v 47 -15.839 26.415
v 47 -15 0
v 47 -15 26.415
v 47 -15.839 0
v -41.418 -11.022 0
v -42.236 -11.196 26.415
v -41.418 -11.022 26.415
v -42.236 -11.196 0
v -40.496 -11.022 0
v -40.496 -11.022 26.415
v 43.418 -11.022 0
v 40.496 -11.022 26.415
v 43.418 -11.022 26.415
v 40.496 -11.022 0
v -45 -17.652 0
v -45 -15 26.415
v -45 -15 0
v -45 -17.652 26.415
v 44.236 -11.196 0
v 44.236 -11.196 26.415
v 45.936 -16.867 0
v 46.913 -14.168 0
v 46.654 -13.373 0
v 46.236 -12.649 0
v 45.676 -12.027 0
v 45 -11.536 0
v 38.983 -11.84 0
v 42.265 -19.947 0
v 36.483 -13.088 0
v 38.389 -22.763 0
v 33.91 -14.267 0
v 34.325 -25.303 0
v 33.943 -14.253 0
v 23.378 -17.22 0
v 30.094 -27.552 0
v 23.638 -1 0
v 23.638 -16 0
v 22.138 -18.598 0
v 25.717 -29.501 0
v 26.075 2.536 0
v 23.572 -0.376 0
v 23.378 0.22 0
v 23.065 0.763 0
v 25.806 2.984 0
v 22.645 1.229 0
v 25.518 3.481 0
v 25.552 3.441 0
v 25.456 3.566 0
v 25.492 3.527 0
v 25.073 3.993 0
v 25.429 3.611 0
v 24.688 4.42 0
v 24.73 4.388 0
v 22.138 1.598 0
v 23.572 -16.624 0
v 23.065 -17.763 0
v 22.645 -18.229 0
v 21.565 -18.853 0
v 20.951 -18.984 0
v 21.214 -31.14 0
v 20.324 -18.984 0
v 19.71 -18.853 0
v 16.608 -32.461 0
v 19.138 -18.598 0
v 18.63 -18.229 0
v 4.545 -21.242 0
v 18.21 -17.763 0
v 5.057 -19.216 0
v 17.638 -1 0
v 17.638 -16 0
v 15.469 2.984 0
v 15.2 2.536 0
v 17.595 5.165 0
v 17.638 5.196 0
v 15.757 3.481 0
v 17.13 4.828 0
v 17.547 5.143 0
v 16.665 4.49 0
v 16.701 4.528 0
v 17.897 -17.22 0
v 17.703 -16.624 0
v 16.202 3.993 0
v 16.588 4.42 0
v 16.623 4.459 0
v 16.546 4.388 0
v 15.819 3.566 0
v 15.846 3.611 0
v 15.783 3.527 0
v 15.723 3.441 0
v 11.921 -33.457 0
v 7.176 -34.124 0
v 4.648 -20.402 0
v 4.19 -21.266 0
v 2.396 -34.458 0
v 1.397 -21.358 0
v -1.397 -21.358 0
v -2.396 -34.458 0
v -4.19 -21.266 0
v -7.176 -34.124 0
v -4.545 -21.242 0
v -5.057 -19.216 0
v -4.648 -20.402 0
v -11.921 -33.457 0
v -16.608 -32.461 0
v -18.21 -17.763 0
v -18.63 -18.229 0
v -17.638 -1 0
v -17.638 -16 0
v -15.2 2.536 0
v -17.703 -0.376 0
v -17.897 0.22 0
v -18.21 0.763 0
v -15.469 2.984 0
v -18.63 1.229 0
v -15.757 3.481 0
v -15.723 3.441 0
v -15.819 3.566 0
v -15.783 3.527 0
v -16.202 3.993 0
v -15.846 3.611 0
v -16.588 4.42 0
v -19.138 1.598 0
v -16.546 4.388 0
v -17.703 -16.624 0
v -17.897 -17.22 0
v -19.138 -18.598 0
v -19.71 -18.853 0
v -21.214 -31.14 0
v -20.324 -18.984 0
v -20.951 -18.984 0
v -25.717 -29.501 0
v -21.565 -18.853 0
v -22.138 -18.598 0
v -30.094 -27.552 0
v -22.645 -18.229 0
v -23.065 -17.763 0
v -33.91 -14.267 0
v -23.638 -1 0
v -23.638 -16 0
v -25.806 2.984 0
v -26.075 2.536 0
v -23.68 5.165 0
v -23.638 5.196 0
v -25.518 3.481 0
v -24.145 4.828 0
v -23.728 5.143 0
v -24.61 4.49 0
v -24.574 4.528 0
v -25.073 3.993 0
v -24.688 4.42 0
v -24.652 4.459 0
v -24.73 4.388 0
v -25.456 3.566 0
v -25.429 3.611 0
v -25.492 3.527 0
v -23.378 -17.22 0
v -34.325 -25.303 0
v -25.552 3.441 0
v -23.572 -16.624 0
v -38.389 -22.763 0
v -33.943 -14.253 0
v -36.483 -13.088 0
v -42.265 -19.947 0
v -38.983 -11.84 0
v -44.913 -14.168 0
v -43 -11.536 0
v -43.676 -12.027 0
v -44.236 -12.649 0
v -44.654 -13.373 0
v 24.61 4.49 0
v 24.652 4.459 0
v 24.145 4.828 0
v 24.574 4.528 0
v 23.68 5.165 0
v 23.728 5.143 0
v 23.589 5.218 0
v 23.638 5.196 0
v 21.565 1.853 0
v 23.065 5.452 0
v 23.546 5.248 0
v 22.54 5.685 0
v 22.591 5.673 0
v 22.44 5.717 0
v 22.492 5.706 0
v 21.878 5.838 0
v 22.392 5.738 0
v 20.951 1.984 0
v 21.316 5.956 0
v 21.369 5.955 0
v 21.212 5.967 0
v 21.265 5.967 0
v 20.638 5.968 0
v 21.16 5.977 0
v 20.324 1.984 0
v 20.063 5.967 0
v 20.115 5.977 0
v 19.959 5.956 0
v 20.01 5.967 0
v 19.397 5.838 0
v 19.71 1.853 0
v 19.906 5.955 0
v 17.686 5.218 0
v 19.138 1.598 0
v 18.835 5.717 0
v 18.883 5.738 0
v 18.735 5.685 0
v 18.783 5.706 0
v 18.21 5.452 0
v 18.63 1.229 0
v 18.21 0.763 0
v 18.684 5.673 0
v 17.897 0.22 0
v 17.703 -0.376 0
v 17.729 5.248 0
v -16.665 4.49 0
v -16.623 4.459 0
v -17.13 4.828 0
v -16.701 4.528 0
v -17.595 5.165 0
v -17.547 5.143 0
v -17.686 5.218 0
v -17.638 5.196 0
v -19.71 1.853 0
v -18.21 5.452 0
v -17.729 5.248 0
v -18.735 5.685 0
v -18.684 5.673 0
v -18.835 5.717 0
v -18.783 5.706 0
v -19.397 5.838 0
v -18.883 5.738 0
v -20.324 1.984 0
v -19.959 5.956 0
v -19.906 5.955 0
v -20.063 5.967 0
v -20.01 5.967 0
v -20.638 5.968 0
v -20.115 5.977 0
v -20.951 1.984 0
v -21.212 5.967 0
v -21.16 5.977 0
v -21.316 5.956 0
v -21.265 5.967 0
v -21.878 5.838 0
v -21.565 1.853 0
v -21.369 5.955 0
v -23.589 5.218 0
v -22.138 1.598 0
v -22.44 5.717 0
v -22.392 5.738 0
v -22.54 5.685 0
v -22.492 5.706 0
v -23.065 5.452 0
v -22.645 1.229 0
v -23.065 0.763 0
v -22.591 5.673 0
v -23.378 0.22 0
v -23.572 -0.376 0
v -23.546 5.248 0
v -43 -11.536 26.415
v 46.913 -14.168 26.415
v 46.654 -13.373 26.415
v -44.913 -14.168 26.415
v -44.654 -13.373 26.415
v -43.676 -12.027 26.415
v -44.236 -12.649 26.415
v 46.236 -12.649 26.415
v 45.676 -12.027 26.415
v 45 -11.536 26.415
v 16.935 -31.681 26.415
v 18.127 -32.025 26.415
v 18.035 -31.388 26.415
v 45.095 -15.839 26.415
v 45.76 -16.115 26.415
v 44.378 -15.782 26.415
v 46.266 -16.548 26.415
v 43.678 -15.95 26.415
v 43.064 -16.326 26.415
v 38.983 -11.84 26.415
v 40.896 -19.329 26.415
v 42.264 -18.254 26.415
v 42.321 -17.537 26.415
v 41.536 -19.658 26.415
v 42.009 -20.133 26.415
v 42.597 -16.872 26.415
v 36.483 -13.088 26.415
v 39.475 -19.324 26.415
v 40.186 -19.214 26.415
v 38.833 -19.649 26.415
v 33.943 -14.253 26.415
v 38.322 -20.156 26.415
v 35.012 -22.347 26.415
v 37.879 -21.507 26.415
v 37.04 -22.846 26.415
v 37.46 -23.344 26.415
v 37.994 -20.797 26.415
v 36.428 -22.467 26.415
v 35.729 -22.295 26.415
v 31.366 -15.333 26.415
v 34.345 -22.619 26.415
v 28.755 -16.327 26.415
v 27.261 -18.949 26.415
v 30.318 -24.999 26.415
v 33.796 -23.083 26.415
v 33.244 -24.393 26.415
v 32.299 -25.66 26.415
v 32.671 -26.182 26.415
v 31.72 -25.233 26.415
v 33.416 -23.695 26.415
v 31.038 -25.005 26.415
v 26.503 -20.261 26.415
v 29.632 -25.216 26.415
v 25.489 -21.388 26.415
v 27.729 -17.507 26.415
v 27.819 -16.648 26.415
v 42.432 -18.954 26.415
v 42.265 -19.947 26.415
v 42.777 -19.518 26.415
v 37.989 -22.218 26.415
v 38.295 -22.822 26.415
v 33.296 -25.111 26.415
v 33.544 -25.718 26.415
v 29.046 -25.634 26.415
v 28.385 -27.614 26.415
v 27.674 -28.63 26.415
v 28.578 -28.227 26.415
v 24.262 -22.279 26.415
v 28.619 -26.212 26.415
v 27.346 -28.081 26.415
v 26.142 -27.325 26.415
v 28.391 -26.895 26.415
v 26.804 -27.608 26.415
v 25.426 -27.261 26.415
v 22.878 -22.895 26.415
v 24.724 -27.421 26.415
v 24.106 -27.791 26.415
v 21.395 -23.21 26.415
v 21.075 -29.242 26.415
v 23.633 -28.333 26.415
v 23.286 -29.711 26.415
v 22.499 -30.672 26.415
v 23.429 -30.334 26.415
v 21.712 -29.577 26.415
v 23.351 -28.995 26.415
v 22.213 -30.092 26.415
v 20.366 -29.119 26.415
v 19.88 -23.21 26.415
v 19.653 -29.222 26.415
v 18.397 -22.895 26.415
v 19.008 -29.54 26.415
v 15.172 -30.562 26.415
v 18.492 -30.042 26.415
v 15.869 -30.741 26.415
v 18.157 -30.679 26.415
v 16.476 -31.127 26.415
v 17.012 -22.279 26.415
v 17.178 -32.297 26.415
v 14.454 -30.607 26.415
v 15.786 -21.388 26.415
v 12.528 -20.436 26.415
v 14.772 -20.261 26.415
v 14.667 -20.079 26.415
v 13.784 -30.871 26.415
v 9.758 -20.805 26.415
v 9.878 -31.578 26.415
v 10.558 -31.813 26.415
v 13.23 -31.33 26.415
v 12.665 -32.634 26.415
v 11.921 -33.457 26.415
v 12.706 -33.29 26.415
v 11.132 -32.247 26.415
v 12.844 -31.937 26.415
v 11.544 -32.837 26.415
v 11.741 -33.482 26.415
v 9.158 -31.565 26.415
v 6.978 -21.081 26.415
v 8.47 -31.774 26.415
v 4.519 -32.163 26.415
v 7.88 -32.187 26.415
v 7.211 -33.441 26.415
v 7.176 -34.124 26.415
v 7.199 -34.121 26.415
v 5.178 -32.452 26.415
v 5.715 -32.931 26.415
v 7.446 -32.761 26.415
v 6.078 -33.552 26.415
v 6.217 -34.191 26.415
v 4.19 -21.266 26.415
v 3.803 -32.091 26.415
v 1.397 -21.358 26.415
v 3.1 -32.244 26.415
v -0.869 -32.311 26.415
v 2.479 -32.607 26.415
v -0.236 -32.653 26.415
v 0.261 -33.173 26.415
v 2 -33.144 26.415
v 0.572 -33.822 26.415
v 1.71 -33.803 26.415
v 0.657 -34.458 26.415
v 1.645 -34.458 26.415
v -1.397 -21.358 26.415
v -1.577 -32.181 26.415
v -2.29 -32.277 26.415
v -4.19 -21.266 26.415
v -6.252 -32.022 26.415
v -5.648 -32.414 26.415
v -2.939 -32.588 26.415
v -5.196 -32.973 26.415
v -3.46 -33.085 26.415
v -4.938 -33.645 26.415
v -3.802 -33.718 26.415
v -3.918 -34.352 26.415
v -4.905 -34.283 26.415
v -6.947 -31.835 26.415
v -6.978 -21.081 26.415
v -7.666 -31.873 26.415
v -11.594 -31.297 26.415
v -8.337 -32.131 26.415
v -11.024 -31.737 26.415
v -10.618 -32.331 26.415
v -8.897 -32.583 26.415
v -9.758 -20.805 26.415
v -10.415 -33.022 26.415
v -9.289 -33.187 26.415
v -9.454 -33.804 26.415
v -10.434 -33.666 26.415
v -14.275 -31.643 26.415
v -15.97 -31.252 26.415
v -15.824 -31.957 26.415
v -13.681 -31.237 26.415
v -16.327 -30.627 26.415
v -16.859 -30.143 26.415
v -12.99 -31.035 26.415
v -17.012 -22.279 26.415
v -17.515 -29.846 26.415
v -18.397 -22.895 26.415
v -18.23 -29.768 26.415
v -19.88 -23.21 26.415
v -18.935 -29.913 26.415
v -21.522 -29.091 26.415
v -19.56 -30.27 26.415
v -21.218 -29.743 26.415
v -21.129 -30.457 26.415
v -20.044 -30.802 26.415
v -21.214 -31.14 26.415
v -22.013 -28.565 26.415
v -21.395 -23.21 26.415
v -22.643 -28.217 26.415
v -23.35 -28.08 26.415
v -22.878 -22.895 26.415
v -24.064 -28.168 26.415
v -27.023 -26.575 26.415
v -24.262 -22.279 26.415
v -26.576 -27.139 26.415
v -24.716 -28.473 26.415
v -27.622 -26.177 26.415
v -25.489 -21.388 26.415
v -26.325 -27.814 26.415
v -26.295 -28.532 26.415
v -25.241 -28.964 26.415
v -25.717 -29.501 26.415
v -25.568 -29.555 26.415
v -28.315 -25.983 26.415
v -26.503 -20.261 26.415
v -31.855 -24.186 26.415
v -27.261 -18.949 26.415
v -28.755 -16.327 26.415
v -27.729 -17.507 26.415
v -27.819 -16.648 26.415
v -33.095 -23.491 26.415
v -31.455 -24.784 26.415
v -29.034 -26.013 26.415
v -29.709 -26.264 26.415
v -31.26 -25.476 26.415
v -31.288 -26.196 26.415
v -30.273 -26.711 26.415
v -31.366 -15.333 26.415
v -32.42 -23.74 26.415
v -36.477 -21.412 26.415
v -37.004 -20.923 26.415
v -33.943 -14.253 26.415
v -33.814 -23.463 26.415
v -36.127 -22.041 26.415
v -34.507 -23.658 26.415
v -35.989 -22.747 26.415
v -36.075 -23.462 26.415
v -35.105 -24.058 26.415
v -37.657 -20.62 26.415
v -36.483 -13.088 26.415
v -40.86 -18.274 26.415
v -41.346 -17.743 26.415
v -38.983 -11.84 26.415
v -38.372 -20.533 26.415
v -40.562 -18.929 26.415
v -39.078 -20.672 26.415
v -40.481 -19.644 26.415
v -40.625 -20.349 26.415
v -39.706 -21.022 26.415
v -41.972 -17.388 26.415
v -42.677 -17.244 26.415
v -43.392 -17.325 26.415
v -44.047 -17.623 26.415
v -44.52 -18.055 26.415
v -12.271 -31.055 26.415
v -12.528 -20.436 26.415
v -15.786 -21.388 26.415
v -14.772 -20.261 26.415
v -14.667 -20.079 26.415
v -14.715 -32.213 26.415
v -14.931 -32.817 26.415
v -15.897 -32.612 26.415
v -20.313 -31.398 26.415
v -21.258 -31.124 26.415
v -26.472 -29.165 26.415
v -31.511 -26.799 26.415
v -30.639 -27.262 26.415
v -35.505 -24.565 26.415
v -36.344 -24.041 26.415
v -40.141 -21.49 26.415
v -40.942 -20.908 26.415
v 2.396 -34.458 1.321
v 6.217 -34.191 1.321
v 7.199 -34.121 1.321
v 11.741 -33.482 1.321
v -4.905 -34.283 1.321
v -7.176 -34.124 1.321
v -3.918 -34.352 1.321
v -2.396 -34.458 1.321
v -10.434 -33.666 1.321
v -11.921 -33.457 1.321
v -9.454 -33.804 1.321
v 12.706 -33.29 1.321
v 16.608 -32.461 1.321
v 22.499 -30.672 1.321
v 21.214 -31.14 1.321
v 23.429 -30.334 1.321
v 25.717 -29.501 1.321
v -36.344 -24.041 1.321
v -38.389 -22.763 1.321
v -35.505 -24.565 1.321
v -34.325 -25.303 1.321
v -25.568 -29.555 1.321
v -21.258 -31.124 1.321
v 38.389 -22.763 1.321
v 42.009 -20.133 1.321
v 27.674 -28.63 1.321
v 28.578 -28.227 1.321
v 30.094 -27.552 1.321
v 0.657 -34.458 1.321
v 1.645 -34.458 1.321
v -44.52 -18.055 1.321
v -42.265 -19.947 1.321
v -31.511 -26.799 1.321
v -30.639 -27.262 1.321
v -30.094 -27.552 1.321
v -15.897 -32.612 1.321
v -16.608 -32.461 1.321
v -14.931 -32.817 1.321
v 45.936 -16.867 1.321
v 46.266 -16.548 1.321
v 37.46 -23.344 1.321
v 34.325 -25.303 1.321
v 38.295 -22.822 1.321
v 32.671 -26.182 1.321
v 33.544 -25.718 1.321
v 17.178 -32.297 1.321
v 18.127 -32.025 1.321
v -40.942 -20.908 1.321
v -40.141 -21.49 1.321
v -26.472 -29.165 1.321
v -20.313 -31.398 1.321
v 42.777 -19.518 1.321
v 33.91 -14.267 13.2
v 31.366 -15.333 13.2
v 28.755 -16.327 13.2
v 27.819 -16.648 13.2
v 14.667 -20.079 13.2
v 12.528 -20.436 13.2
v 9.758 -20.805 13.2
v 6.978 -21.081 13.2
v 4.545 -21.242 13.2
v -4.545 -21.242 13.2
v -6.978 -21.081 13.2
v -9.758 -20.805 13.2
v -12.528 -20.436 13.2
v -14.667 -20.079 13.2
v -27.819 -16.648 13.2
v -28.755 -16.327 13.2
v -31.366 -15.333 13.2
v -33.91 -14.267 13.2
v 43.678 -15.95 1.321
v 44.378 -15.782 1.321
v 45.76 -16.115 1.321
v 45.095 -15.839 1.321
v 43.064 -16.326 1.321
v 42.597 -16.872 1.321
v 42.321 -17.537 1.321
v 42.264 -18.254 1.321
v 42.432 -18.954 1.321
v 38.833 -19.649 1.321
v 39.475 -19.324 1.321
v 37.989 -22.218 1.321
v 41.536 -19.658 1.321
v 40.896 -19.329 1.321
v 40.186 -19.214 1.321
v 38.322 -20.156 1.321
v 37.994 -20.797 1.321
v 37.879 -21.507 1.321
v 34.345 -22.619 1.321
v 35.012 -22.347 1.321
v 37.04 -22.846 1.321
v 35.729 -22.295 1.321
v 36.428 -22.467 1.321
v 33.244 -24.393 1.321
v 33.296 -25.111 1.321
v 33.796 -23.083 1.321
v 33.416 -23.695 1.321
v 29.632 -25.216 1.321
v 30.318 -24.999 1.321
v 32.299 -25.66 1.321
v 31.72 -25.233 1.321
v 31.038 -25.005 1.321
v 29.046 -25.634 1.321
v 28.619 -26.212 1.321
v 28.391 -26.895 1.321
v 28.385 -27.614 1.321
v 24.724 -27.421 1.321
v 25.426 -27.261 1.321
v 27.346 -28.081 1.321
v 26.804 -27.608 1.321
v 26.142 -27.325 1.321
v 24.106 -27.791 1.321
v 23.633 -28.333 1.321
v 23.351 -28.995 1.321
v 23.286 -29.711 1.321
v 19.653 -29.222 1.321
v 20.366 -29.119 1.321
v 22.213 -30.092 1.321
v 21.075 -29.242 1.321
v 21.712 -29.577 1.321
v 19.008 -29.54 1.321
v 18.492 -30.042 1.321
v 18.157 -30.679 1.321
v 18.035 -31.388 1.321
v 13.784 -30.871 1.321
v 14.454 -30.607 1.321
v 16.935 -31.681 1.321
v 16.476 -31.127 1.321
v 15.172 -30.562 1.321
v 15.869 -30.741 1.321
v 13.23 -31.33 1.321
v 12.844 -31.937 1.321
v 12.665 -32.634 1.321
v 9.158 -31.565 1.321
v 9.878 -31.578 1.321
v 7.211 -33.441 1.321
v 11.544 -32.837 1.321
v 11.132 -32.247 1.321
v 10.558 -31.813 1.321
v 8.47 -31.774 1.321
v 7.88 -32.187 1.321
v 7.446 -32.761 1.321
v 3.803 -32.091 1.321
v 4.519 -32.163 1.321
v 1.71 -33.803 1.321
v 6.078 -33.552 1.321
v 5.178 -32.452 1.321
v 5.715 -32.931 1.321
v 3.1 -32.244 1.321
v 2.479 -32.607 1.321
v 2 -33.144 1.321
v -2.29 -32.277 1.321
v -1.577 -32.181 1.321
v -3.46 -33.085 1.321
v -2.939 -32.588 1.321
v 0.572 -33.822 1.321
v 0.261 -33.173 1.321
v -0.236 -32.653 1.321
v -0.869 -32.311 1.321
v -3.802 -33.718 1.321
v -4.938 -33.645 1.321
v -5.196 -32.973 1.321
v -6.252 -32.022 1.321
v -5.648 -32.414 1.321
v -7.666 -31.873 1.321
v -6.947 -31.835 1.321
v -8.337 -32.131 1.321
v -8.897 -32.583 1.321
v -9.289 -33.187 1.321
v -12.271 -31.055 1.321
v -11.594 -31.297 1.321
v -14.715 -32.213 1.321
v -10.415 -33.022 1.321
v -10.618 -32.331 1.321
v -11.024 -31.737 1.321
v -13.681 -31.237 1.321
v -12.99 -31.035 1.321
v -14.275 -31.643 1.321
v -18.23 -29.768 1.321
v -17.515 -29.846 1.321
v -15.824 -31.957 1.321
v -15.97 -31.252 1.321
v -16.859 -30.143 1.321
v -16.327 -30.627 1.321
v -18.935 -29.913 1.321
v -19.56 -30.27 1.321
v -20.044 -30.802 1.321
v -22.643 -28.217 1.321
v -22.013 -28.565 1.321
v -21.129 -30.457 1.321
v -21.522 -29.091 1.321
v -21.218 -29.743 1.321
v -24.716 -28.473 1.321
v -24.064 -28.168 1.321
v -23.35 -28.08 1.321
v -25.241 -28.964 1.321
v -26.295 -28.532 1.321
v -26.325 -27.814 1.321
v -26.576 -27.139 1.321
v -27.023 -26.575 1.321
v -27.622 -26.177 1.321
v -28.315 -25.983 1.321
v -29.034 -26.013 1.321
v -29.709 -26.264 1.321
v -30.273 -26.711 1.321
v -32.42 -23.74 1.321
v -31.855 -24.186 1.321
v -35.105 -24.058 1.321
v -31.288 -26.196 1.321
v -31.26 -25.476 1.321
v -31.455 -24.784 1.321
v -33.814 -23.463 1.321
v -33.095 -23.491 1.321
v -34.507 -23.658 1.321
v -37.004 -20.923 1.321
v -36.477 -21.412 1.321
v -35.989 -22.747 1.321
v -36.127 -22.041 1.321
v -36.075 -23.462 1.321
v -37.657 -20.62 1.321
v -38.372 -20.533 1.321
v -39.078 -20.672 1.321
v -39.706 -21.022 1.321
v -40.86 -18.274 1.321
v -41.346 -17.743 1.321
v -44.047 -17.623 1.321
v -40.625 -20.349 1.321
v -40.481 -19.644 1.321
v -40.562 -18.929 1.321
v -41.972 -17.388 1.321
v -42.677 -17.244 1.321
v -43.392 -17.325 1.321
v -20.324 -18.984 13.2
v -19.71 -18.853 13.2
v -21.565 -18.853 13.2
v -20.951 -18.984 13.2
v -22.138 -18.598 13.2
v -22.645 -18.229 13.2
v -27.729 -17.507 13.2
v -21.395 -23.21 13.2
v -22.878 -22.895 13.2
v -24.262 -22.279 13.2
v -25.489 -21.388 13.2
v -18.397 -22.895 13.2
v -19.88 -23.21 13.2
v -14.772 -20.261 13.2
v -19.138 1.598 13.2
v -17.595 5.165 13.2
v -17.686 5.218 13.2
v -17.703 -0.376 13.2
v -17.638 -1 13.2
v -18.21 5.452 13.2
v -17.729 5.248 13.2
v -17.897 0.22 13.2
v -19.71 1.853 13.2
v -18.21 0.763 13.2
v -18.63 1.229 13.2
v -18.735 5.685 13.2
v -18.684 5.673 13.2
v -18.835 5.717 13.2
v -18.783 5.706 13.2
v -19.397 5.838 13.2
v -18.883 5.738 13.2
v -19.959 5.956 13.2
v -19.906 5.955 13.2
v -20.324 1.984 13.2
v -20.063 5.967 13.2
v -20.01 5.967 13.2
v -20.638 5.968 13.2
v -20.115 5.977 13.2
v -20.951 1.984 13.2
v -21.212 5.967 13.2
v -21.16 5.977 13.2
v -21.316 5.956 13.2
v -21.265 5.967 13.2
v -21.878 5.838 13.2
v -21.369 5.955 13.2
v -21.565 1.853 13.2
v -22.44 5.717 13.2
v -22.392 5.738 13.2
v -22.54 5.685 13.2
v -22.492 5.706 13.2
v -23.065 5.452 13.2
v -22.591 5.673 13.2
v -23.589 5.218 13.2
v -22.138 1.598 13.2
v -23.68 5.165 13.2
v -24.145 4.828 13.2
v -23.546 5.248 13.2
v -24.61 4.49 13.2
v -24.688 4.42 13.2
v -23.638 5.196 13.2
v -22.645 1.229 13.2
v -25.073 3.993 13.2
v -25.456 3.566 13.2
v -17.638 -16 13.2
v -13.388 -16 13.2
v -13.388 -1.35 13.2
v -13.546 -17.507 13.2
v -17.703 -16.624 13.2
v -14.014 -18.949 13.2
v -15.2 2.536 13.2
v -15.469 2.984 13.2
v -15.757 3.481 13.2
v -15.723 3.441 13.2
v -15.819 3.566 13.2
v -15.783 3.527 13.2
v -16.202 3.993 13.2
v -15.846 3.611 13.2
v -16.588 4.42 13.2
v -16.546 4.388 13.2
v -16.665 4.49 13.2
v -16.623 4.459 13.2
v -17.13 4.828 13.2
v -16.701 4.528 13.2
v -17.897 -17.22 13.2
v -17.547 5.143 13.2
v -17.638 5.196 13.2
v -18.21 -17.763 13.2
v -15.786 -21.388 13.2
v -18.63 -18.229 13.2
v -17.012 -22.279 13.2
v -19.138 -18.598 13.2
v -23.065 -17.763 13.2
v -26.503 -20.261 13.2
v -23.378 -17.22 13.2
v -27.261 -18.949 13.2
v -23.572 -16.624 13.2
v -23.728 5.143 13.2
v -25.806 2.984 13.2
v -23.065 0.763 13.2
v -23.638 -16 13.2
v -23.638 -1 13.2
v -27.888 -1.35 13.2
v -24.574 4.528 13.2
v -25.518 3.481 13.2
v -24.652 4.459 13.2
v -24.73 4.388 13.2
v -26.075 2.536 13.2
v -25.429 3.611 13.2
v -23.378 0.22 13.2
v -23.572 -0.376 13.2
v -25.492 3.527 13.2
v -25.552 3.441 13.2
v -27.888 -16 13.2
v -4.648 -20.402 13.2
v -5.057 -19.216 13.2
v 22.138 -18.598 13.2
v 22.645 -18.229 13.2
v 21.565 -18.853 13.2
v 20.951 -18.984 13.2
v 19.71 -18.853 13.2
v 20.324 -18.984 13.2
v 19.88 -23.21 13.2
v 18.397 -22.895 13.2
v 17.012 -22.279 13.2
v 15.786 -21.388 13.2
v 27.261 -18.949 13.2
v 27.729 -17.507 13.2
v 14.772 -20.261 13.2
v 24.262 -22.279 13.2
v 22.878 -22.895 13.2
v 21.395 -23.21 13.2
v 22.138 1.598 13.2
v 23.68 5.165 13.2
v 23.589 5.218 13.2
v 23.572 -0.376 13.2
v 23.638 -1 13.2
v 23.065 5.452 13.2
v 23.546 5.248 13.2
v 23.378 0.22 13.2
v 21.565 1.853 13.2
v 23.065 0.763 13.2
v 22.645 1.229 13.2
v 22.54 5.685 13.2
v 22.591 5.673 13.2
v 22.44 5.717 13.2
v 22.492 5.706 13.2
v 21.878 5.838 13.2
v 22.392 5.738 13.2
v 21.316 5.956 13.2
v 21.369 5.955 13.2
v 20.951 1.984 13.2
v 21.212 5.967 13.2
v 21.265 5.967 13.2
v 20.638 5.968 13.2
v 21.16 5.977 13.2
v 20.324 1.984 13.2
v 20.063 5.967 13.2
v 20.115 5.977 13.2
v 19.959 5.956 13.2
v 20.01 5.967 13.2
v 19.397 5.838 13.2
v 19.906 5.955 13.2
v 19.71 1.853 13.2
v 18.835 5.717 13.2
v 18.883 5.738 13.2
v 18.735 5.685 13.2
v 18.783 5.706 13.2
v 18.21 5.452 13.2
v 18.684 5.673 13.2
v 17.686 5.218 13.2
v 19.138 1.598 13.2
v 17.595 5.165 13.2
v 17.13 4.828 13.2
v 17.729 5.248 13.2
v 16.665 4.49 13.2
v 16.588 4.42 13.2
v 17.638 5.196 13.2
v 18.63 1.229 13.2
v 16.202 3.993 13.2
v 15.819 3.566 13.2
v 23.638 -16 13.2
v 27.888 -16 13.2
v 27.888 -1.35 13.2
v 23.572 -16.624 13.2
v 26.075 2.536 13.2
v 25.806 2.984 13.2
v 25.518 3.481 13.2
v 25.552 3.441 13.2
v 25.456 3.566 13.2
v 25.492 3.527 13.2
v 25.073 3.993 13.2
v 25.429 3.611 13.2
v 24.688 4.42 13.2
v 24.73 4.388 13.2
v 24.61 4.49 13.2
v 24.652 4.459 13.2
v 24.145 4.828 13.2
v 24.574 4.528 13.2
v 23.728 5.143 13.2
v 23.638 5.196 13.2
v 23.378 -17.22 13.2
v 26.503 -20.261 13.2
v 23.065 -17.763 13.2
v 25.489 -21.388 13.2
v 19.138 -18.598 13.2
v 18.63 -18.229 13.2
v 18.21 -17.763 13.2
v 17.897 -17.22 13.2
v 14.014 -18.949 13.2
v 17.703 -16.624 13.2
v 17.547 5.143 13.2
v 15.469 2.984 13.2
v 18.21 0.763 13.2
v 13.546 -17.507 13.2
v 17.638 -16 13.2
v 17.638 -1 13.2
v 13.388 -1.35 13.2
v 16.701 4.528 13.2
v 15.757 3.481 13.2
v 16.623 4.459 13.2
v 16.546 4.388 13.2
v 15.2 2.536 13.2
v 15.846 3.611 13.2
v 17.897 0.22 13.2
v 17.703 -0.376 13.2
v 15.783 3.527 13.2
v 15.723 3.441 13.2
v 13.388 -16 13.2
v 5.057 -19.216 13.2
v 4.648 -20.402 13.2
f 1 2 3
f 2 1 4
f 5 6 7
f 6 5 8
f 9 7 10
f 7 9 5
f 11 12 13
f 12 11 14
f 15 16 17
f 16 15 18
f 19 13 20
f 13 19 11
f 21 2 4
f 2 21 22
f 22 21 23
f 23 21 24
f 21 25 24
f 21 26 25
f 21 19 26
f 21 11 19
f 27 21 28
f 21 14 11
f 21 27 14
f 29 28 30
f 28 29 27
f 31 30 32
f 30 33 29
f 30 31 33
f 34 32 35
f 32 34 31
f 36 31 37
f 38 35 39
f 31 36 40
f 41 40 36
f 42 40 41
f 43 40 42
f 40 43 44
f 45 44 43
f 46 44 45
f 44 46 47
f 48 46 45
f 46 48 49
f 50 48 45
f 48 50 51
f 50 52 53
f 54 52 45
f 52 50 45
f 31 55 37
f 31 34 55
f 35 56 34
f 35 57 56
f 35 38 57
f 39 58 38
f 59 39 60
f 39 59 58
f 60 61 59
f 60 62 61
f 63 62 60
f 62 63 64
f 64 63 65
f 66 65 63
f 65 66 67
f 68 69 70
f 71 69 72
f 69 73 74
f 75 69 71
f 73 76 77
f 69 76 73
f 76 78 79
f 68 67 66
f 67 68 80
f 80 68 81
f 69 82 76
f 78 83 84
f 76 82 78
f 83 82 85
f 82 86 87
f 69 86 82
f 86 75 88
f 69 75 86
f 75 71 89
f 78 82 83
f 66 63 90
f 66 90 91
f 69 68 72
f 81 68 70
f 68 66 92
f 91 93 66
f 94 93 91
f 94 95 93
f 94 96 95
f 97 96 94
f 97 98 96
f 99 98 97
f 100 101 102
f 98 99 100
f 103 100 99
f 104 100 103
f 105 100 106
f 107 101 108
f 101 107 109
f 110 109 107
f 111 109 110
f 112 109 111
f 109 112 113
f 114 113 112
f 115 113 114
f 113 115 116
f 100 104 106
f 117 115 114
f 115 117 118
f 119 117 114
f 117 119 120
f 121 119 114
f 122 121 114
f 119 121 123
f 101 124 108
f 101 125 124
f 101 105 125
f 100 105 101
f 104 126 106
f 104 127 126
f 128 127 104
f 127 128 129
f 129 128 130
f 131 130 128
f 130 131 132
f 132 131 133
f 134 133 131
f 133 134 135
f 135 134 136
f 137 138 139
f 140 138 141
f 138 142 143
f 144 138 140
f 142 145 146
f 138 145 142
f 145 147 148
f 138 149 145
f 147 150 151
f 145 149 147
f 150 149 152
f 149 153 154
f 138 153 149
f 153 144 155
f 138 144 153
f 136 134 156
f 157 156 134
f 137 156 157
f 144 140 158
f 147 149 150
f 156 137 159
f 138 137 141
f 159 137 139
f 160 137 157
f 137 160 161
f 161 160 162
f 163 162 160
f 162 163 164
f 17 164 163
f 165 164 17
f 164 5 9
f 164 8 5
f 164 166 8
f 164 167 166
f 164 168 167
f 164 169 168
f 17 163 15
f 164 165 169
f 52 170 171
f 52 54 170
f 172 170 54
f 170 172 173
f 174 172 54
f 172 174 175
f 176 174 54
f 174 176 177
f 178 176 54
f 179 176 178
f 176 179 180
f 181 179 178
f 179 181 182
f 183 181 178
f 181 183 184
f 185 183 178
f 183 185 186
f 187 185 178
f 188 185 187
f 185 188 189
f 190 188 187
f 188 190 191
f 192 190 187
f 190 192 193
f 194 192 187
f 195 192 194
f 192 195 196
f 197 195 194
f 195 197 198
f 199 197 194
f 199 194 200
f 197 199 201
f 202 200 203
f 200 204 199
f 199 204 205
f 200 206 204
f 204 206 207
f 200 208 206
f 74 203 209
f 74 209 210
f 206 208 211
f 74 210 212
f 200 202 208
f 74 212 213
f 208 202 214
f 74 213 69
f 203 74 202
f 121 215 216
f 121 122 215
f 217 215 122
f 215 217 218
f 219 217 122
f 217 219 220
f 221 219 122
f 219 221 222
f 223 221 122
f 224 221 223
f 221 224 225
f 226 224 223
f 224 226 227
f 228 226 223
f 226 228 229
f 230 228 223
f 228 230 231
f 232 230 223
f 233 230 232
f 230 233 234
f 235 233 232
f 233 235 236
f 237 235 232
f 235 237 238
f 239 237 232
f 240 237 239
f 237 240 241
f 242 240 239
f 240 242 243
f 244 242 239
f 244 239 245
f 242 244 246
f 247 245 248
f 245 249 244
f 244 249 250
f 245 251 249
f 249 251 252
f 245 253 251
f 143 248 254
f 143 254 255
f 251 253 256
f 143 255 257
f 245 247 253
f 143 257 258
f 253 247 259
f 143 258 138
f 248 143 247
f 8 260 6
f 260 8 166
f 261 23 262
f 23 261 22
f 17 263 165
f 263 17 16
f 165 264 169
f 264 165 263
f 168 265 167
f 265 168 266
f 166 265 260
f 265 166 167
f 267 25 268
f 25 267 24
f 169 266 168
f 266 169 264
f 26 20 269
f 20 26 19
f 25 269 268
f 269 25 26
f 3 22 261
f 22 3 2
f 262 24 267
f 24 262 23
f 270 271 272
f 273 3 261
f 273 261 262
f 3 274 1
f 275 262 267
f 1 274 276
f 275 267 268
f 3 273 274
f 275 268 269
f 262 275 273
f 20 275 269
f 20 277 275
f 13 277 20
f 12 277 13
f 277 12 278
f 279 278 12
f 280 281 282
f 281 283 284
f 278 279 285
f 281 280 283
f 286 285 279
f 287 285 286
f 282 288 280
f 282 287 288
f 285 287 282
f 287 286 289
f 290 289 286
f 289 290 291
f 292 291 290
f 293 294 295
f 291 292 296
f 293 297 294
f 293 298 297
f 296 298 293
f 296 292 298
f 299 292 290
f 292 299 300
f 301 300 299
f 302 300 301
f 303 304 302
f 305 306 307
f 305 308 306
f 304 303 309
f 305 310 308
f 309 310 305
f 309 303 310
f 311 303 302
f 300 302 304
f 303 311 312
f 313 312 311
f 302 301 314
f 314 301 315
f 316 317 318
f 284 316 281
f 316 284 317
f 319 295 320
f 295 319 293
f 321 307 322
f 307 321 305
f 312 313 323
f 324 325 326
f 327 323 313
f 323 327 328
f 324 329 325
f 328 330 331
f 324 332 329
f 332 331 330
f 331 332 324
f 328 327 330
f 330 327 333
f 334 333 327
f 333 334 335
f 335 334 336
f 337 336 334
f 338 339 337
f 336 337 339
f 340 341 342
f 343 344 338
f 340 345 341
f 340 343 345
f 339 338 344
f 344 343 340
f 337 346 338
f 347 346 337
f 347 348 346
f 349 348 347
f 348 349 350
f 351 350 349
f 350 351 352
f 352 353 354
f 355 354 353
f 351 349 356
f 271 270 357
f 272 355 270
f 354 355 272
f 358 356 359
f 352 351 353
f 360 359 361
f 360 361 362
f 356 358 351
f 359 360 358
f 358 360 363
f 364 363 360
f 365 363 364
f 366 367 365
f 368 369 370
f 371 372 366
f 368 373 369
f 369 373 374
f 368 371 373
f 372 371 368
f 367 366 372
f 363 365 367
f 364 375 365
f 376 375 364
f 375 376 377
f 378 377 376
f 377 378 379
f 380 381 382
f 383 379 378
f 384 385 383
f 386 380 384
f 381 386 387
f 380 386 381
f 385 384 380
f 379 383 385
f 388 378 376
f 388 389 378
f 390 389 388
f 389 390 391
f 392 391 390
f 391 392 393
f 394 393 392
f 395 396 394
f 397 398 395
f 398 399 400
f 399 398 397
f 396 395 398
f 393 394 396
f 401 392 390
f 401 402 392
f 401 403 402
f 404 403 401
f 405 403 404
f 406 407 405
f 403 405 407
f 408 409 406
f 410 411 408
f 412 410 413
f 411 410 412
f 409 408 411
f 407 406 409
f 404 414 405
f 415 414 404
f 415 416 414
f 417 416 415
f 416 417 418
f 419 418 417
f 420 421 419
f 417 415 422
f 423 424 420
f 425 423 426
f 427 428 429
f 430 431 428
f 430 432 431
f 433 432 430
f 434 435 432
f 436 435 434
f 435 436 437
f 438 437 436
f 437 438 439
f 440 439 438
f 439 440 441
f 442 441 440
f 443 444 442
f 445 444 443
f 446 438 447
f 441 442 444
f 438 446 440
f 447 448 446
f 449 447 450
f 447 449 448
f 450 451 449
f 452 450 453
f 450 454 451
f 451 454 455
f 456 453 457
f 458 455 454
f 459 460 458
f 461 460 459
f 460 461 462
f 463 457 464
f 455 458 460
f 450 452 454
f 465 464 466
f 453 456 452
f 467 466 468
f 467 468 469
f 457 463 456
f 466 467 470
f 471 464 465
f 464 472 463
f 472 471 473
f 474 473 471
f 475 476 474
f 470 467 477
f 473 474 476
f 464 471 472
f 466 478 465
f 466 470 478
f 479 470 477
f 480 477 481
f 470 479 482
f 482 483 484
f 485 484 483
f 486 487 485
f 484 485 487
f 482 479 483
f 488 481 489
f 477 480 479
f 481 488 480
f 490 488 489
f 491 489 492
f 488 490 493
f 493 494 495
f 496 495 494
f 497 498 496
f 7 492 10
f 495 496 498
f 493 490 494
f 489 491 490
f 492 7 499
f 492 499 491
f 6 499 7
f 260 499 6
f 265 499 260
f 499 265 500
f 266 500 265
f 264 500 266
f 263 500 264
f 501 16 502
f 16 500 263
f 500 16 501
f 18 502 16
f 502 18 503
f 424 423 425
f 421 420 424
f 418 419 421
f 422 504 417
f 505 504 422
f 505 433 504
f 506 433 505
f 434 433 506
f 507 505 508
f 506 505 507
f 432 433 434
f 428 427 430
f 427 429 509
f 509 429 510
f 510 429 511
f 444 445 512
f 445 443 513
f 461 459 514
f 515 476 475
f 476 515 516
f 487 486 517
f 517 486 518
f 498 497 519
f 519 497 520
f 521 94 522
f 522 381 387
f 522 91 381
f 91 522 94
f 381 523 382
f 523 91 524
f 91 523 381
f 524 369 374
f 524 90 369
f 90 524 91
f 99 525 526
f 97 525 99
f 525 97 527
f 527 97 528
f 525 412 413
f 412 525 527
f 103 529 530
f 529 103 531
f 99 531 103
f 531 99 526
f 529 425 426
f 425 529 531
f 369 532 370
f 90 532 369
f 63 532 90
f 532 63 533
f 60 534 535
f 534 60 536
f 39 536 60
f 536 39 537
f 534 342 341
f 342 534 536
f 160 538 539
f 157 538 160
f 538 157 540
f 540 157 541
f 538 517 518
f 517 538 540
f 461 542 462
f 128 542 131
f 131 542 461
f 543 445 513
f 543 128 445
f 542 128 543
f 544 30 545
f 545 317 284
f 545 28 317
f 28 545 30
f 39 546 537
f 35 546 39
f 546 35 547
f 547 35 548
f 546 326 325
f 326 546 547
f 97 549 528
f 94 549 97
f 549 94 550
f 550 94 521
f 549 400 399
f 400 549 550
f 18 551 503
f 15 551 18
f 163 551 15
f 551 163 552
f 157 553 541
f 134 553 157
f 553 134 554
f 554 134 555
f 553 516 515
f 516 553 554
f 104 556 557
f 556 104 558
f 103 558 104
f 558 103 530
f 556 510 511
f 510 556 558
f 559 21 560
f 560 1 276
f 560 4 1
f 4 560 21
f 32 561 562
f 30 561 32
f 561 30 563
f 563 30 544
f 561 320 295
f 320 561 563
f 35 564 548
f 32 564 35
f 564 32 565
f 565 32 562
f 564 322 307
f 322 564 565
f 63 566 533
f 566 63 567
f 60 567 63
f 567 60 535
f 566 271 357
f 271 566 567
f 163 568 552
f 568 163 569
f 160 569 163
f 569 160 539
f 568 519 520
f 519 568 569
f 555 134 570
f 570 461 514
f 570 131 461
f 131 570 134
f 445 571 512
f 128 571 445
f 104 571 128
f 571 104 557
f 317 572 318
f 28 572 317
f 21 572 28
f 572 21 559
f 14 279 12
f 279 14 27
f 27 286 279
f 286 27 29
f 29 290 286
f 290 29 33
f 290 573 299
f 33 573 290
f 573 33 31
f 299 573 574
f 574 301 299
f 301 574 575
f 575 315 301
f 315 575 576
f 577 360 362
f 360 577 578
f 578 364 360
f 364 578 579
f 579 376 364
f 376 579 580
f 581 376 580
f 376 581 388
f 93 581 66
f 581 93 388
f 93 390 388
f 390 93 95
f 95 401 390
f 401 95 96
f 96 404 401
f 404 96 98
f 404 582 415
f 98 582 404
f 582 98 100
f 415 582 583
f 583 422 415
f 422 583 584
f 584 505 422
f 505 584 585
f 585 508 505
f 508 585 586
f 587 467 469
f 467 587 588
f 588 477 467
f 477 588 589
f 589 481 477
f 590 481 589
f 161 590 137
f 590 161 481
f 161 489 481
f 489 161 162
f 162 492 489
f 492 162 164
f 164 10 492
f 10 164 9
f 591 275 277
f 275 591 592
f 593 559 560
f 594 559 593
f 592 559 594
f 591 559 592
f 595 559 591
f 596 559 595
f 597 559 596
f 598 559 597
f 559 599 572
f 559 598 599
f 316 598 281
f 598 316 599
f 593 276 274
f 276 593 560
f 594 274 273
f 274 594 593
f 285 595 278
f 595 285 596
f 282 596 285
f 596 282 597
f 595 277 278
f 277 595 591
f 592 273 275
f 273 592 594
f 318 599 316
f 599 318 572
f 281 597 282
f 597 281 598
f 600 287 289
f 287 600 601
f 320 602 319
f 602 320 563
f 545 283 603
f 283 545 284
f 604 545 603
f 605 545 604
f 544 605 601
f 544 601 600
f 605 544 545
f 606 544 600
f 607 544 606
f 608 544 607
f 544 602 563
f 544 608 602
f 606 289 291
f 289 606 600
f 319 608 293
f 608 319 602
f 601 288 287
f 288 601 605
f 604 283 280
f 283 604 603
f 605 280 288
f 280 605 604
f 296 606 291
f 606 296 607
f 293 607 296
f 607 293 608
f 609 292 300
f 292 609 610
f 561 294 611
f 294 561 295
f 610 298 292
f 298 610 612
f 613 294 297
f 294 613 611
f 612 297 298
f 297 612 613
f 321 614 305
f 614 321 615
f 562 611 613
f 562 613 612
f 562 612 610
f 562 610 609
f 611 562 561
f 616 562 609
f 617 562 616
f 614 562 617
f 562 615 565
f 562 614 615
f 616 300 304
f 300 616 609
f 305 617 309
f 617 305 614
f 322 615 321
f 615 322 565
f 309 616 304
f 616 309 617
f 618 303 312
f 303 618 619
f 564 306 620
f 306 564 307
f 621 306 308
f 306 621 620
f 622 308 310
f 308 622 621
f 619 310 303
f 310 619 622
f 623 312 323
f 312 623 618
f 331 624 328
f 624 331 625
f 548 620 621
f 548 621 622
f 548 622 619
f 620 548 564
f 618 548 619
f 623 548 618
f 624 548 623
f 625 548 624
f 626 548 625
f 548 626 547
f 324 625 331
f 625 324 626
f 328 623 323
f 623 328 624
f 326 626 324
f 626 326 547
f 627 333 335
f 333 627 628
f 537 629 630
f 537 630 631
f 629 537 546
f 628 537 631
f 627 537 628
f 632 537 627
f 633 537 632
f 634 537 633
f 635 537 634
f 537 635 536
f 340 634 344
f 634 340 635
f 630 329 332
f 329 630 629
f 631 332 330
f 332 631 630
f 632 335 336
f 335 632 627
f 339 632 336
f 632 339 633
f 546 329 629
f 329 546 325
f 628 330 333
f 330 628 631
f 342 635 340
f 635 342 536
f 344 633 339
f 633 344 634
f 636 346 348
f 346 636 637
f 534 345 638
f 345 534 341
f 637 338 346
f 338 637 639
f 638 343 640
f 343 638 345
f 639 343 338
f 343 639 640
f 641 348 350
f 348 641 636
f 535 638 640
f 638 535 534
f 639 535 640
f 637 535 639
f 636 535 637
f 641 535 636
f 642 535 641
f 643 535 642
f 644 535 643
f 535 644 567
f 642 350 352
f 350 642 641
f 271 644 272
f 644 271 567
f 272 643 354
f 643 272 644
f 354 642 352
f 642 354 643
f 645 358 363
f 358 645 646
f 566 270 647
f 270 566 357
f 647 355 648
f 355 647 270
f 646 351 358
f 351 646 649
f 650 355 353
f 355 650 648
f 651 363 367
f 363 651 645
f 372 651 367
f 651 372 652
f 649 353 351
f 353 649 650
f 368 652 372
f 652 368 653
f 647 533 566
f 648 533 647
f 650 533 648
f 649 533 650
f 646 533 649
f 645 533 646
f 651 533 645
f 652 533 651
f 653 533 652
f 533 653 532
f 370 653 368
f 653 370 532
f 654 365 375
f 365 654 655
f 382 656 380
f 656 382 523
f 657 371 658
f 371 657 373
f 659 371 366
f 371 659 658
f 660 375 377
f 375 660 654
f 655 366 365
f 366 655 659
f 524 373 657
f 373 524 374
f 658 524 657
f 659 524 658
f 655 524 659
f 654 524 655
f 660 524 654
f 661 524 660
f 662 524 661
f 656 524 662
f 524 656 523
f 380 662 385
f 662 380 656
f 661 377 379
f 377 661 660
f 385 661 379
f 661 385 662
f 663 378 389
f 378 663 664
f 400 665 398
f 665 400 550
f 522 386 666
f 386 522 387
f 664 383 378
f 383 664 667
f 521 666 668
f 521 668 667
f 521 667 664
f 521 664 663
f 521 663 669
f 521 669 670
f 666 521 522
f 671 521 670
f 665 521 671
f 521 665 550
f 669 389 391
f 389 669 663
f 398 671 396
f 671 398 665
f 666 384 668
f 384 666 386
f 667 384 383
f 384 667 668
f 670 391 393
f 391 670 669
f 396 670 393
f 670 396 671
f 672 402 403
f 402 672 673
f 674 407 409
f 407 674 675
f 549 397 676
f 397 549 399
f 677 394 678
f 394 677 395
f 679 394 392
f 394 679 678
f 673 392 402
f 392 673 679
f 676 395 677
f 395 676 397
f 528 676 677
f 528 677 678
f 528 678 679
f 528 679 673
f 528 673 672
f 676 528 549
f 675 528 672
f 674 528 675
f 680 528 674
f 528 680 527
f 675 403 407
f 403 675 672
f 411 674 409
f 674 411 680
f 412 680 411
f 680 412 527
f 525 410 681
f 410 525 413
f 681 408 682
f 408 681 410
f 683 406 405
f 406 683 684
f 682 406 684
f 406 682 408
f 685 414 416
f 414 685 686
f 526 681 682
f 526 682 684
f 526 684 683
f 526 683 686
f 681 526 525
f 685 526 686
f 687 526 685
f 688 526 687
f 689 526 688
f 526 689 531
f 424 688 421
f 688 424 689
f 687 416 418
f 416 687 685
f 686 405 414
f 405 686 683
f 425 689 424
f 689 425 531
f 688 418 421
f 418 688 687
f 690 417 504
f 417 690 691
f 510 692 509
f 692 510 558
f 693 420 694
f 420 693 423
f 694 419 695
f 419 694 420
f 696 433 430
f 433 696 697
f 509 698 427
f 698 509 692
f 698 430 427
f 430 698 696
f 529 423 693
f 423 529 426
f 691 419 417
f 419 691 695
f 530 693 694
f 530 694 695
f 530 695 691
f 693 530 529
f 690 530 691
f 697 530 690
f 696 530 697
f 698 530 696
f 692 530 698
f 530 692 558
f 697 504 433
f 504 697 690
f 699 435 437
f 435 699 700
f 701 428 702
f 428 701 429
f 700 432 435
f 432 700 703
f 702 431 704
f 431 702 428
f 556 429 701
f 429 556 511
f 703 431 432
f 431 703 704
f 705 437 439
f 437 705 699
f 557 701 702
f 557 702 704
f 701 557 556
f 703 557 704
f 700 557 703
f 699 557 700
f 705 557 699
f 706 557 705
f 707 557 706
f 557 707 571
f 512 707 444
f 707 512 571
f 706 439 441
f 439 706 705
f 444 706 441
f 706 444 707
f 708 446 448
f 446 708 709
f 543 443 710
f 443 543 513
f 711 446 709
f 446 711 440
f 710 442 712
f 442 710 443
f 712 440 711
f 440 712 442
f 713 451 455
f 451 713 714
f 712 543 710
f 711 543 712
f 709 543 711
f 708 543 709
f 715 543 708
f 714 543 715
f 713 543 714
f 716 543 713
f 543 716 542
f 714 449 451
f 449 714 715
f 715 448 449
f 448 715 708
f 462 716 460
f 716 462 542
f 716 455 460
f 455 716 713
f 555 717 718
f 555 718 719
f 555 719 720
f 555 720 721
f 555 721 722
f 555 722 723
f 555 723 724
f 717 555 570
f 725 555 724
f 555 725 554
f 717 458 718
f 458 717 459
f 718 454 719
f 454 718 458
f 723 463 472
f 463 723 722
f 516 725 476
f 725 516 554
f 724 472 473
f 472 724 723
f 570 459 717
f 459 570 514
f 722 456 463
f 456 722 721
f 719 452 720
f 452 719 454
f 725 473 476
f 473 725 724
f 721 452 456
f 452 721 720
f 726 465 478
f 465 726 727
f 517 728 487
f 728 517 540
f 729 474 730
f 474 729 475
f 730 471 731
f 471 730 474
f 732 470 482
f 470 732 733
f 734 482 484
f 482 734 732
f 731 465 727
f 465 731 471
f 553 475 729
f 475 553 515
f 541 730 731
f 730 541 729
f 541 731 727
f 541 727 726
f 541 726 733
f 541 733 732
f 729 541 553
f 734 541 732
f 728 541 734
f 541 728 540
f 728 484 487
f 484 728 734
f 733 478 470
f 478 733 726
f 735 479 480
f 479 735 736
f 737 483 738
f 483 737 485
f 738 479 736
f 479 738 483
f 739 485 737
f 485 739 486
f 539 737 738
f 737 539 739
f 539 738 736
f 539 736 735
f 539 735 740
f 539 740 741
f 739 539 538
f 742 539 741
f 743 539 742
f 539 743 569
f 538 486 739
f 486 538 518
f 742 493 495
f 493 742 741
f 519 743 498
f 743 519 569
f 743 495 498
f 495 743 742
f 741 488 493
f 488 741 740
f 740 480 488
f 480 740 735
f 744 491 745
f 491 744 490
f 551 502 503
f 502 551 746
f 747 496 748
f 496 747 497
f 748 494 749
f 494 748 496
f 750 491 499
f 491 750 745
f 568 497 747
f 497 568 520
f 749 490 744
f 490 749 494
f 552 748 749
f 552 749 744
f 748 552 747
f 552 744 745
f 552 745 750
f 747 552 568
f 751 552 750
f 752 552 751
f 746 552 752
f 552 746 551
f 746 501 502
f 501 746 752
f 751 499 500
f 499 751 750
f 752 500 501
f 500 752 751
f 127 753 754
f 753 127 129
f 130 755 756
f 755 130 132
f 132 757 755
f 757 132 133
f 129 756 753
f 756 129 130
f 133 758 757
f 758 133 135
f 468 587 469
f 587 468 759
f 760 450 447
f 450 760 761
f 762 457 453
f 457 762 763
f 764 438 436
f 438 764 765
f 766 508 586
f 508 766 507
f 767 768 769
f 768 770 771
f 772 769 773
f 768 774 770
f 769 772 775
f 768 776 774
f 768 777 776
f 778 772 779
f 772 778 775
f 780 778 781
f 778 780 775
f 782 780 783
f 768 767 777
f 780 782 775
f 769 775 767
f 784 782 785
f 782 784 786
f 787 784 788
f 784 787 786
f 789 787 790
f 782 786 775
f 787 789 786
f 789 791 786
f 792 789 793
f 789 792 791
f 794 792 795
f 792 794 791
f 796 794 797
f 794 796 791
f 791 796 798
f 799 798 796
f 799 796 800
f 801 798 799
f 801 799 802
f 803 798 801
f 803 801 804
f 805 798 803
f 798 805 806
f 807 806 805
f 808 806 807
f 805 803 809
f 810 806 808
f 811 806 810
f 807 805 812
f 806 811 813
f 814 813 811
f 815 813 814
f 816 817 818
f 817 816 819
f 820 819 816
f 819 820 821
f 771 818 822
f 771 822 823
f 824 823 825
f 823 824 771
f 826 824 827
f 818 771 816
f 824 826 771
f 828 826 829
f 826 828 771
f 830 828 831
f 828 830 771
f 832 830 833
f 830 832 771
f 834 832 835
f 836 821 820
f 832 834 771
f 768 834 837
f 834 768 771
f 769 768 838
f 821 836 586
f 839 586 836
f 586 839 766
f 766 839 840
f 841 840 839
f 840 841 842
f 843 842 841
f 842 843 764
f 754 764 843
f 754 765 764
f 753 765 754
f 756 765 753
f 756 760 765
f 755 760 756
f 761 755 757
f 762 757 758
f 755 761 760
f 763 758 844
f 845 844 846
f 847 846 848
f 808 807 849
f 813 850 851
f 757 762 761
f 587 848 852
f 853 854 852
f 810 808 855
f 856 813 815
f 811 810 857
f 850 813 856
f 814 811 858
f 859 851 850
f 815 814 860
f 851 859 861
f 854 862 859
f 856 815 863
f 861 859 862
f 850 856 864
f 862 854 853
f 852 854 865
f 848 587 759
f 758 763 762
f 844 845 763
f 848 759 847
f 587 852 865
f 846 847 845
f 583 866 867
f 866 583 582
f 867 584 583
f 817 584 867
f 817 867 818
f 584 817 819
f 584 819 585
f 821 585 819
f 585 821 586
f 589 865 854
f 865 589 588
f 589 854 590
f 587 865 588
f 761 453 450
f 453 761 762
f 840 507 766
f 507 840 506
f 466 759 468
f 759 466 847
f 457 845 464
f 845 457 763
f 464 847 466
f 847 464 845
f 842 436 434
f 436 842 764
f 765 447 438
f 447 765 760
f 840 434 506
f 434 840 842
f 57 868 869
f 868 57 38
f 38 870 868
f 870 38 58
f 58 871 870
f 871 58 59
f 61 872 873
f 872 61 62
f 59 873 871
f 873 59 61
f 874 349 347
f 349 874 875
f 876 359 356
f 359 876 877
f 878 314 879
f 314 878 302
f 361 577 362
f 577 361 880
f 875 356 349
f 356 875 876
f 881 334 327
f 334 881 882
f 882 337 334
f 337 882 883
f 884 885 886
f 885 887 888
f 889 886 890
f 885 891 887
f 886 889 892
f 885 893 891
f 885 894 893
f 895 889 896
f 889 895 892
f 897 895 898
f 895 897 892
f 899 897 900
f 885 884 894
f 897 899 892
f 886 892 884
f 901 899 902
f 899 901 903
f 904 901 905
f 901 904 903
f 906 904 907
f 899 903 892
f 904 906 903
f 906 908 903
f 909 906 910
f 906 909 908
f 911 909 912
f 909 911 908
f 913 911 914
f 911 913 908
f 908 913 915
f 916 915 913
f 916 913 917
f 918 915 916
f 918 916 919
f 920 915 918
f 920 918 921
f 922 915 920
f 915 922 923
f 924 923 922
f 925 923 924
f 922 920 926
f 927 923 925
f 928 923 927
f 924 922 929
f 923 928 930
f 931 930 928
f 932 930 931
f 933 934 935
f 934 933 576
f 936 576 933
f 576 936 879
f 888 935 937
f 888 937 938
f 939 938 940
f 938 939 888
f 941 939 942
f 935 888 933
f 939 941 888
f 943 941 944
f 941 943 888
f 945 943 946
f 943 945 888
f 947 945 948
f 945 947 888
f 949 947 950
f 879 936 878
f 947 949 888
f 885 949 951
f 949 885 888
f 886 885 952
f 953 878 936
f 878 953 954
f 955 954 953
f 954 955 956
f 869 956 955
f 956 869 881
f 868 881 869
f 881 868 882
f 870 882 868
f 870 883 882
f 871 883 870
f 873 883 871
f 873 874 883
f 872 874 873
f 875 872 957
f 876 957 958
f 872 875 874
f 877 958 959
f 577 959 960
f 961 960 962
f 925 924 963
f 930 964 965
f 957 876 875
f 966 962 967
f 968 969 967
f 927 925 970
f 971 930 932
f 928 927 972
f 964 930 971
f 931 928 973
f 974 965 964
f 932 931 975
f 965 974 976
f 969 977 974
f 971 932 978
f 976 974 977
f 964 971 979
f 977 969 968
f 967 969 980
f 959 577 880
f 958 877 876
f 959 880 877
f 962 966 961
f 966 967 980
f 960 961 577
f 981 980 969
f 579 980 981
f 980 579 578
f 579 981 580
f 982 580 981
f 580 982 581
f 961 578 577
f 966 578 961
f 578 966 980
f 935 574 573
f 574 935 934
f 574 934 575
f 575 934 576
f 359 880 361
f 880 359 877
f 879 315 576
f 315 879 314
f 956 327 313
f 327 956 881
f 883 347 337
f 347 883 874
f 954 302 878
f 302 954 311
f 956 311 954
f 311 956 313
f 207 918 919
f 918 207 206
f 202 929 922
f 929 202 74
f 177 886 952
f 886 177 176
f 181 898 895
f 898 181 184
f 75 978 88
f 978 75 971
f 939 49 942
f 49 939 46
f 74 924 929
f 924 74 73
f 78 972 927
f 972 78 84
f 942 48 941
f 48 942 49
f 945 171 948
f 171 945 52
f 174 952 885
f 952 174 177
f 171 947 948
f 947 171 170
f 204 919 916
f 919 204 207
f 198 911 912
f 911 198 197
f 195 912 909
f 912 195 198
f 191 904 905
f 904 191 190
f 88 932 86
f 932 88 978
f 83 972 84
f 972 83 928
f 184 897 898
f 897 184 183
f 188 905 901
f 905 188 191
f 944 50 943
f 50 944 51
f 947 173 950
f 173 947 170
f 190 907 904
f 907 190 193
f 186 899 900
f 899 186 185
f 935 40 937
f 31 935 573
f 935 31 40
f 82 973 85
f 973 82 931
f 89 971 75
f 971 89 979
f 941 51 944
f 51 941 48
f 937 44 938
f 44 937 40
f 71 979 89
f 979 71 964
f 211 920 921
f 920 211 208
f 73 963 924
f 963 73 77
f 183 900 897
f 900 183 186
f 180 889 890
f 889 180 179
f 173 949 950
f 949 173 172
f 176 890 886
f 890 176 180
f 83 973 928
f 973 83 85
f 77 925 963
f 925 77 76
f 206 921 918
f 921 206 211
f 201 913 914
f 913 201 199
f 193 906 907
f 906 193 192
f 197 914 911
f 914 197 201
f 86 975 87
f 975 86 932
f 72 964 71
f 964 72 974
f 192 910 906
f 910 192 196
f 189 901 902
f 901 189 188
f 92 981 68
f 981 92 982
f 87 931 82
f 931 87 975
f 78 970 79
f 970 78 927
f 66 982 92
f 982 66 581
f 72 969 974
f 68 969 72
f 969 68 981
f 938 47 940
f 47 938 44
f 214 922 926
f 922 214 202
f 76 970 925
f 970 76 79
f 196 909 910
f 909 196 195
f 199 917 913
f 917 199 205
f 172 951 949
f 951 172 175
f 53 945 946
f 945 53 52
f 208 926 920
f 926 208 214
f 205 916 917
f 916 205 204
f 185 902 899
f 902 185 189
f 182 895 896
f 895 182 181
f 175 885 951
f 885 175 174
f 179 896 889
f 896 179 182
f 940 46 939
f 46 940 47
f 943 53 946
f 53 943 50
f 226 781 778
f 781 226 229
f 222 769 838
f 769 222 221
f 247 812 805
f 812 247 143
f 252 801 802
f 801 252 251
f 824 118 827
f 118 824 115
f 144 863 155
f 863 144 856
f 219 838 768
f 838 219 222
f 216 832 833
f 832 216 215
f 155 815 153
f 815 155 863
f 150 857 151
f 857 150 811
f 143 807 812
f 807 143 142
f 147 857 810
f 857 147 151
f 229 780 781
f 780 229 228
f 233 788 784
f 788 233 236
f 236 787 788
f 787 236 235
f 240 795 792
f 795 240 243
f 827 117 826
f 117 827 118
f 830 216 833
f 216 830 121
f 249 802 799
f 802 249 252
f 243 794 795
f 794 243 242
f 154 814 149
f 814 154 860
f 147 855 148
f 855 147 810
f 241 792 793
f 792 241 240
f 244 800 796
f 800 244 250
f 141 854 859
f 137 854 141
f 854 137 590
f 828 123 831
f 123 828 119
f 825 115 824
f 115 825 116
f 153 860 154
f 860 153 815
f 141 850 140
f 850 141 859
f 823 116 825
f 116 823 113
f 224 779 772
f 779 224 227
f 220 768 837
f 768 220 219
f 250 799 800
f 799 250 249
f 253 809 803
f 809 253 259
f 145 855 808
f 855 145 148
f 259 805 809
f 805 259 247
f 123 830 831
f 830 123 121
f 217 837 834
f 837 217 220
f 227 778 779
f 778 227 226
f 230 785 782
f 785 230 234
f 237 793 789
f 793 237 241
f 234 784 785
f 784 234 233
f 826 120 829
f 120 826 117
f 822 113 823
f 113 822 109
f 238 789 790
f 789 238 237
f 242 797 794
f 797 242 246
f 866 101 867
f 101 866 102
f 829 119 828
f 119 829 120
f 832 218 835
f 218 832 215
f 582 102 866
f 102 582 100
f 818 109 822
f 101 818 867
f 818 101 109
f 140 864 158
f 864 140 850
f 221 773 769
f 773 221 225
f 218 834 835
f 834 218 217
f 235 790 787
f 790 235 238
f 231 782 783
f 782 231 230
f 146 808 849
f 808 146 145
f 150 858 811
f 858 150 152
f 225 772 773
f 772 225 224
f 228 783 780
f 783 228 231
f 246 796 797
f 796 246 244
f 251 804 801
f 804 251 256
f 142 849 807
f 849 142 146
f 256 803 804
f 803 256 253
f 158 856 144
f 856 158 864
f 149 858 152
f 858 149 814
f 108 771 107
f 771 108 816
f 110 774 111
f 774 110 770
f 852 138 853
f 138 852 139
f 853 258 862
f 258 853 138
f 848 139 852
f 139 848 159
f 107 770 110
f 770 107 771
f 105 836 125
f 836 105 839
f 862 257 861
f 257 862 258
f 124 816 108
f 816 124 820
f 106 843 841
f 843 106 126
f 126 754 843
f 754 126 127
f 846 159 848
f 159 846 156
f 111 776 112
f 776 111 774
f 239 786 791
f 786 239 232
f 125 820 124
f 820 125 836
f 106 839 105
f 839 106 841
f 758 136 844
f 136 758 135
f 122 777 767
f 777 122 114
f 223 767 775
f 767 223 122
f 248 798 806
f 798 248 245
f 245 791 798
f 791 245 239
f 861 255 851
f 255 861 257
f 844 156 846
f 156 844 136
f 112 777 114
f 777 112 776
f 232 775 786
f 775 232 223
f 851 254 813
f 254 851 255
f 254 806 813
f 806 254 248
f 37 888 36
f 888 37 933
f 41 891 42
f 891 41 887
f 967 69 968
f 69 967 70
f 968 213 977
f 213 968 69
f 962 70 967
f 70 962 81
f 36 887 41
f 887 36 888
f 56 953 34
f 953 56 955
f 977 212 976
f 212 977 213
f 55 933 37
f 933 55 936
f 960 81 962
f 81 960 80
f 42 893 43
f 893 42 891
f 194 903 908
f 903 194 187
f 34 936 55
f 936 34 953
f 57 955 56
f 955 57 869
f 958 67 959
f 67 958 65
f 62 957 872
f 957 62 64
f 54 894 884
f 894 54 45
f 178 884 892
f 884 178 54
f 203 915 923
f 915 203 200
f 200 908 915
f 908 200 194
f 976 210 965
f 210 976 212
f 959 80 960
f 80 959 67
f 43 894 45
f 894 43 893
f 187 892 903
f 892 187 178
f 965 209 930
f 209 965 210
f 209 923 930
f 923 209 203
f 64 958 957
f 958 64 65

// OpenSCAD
*translate([0,-17,0])
scale(10.4)rotate([90,0,-90])translate([0,0,4.31])import(file="footstopredux.stl");

mt=1.625*25.4;
*for(m=[-2,2]) translate([mt/m,0]) cylinder(d=6,h=20,$fn=35);

width=90;
ewidth=2;
height=34.5;
bheight=15.5;
Dmain=137.3;
Dinner=169;
Hinner=13.13;
depth=26.415;
Mdepth=13.2;
Mrad=6;
Tdepth=1.321;
Tstep=4.648;
Tstart=49.53;
Tdia=4.6;

module innerform(dr=0)
   let(sz=Dinner,y=height,dy=Hinner)translate([0,sz/2-(y-dy)])
        rotate_extrude($fn=190) translate([sz/2-dr,0])
            square([dy,depth]);

module meinform()
    intersection() {
        let(x=width,e=ewidth,R1=4,y=height,y2=bheight) hull()
            for(x1=[-x/2+R1,x/2+e-R1],y1=[-y+R1+y2,-y+R1])
                translate([x1,y1]) cylinder(r=R1,h=27,$fn=30);
        let(y=height,sz=Dmain)translate([0,sz/2-y])cylinder(d=sz,h=depth,$fn=90);
        innerform();
        }

        
module teeth()
    let(sz=Dmain,y=height)translate([0,sz/2-y,Tdepth])
     for(n=[0:17]) rotate([0,0,-n*Tstep-Tstart]) translate([sz/2,0])
       cylinder(d=Tdia,h=depth,$fn=20);

module slot(sz,d,z) hull() 
    for(k=[0,-sz]) translate([0,k]) cylinder(d=d,h=z,$fn=30);

module mount1(dr=0)
    translate([mt/2,0])
    for(a=[0,25,-25]) rotate([0,0,a])
    slot(sz=24-(a>=0?5:0)-dr,d=(Mrad+dr)*2,z=Mdepth+dr*2);

module my()
        for(m=[0,1]) mirror([m,0,0]) children();

module slots()
     for(m=[-2,2]) translate([mt/m,-1]) {
        translate([0,0,-1])slot(sz=15,d=6,z=Mdepth+2);
        translate([0,0,Mdepth])slot(sz=15,d=14.5,z=16);
        }

module junc(w) let(R=5,a=R-R*cos(w),b=R-R*sin(w))
        intersection() { mount1(a); innerform(b); }

module bevel()
    for(i=[0:10:90-10]) 
        //hull() {
            junc(i); 
            //junc(i+15); }
    
module jhull() for(i=[0:$children-2])
    hull() { children(i); children(i+1); }

module stopper()
{    
  difference() {
    meinform();
    teeth();
    slots();
  }
  difference() {
    my() union() { mount1(); *bevel(); }
    my() slots();
  }
}
stopper();
